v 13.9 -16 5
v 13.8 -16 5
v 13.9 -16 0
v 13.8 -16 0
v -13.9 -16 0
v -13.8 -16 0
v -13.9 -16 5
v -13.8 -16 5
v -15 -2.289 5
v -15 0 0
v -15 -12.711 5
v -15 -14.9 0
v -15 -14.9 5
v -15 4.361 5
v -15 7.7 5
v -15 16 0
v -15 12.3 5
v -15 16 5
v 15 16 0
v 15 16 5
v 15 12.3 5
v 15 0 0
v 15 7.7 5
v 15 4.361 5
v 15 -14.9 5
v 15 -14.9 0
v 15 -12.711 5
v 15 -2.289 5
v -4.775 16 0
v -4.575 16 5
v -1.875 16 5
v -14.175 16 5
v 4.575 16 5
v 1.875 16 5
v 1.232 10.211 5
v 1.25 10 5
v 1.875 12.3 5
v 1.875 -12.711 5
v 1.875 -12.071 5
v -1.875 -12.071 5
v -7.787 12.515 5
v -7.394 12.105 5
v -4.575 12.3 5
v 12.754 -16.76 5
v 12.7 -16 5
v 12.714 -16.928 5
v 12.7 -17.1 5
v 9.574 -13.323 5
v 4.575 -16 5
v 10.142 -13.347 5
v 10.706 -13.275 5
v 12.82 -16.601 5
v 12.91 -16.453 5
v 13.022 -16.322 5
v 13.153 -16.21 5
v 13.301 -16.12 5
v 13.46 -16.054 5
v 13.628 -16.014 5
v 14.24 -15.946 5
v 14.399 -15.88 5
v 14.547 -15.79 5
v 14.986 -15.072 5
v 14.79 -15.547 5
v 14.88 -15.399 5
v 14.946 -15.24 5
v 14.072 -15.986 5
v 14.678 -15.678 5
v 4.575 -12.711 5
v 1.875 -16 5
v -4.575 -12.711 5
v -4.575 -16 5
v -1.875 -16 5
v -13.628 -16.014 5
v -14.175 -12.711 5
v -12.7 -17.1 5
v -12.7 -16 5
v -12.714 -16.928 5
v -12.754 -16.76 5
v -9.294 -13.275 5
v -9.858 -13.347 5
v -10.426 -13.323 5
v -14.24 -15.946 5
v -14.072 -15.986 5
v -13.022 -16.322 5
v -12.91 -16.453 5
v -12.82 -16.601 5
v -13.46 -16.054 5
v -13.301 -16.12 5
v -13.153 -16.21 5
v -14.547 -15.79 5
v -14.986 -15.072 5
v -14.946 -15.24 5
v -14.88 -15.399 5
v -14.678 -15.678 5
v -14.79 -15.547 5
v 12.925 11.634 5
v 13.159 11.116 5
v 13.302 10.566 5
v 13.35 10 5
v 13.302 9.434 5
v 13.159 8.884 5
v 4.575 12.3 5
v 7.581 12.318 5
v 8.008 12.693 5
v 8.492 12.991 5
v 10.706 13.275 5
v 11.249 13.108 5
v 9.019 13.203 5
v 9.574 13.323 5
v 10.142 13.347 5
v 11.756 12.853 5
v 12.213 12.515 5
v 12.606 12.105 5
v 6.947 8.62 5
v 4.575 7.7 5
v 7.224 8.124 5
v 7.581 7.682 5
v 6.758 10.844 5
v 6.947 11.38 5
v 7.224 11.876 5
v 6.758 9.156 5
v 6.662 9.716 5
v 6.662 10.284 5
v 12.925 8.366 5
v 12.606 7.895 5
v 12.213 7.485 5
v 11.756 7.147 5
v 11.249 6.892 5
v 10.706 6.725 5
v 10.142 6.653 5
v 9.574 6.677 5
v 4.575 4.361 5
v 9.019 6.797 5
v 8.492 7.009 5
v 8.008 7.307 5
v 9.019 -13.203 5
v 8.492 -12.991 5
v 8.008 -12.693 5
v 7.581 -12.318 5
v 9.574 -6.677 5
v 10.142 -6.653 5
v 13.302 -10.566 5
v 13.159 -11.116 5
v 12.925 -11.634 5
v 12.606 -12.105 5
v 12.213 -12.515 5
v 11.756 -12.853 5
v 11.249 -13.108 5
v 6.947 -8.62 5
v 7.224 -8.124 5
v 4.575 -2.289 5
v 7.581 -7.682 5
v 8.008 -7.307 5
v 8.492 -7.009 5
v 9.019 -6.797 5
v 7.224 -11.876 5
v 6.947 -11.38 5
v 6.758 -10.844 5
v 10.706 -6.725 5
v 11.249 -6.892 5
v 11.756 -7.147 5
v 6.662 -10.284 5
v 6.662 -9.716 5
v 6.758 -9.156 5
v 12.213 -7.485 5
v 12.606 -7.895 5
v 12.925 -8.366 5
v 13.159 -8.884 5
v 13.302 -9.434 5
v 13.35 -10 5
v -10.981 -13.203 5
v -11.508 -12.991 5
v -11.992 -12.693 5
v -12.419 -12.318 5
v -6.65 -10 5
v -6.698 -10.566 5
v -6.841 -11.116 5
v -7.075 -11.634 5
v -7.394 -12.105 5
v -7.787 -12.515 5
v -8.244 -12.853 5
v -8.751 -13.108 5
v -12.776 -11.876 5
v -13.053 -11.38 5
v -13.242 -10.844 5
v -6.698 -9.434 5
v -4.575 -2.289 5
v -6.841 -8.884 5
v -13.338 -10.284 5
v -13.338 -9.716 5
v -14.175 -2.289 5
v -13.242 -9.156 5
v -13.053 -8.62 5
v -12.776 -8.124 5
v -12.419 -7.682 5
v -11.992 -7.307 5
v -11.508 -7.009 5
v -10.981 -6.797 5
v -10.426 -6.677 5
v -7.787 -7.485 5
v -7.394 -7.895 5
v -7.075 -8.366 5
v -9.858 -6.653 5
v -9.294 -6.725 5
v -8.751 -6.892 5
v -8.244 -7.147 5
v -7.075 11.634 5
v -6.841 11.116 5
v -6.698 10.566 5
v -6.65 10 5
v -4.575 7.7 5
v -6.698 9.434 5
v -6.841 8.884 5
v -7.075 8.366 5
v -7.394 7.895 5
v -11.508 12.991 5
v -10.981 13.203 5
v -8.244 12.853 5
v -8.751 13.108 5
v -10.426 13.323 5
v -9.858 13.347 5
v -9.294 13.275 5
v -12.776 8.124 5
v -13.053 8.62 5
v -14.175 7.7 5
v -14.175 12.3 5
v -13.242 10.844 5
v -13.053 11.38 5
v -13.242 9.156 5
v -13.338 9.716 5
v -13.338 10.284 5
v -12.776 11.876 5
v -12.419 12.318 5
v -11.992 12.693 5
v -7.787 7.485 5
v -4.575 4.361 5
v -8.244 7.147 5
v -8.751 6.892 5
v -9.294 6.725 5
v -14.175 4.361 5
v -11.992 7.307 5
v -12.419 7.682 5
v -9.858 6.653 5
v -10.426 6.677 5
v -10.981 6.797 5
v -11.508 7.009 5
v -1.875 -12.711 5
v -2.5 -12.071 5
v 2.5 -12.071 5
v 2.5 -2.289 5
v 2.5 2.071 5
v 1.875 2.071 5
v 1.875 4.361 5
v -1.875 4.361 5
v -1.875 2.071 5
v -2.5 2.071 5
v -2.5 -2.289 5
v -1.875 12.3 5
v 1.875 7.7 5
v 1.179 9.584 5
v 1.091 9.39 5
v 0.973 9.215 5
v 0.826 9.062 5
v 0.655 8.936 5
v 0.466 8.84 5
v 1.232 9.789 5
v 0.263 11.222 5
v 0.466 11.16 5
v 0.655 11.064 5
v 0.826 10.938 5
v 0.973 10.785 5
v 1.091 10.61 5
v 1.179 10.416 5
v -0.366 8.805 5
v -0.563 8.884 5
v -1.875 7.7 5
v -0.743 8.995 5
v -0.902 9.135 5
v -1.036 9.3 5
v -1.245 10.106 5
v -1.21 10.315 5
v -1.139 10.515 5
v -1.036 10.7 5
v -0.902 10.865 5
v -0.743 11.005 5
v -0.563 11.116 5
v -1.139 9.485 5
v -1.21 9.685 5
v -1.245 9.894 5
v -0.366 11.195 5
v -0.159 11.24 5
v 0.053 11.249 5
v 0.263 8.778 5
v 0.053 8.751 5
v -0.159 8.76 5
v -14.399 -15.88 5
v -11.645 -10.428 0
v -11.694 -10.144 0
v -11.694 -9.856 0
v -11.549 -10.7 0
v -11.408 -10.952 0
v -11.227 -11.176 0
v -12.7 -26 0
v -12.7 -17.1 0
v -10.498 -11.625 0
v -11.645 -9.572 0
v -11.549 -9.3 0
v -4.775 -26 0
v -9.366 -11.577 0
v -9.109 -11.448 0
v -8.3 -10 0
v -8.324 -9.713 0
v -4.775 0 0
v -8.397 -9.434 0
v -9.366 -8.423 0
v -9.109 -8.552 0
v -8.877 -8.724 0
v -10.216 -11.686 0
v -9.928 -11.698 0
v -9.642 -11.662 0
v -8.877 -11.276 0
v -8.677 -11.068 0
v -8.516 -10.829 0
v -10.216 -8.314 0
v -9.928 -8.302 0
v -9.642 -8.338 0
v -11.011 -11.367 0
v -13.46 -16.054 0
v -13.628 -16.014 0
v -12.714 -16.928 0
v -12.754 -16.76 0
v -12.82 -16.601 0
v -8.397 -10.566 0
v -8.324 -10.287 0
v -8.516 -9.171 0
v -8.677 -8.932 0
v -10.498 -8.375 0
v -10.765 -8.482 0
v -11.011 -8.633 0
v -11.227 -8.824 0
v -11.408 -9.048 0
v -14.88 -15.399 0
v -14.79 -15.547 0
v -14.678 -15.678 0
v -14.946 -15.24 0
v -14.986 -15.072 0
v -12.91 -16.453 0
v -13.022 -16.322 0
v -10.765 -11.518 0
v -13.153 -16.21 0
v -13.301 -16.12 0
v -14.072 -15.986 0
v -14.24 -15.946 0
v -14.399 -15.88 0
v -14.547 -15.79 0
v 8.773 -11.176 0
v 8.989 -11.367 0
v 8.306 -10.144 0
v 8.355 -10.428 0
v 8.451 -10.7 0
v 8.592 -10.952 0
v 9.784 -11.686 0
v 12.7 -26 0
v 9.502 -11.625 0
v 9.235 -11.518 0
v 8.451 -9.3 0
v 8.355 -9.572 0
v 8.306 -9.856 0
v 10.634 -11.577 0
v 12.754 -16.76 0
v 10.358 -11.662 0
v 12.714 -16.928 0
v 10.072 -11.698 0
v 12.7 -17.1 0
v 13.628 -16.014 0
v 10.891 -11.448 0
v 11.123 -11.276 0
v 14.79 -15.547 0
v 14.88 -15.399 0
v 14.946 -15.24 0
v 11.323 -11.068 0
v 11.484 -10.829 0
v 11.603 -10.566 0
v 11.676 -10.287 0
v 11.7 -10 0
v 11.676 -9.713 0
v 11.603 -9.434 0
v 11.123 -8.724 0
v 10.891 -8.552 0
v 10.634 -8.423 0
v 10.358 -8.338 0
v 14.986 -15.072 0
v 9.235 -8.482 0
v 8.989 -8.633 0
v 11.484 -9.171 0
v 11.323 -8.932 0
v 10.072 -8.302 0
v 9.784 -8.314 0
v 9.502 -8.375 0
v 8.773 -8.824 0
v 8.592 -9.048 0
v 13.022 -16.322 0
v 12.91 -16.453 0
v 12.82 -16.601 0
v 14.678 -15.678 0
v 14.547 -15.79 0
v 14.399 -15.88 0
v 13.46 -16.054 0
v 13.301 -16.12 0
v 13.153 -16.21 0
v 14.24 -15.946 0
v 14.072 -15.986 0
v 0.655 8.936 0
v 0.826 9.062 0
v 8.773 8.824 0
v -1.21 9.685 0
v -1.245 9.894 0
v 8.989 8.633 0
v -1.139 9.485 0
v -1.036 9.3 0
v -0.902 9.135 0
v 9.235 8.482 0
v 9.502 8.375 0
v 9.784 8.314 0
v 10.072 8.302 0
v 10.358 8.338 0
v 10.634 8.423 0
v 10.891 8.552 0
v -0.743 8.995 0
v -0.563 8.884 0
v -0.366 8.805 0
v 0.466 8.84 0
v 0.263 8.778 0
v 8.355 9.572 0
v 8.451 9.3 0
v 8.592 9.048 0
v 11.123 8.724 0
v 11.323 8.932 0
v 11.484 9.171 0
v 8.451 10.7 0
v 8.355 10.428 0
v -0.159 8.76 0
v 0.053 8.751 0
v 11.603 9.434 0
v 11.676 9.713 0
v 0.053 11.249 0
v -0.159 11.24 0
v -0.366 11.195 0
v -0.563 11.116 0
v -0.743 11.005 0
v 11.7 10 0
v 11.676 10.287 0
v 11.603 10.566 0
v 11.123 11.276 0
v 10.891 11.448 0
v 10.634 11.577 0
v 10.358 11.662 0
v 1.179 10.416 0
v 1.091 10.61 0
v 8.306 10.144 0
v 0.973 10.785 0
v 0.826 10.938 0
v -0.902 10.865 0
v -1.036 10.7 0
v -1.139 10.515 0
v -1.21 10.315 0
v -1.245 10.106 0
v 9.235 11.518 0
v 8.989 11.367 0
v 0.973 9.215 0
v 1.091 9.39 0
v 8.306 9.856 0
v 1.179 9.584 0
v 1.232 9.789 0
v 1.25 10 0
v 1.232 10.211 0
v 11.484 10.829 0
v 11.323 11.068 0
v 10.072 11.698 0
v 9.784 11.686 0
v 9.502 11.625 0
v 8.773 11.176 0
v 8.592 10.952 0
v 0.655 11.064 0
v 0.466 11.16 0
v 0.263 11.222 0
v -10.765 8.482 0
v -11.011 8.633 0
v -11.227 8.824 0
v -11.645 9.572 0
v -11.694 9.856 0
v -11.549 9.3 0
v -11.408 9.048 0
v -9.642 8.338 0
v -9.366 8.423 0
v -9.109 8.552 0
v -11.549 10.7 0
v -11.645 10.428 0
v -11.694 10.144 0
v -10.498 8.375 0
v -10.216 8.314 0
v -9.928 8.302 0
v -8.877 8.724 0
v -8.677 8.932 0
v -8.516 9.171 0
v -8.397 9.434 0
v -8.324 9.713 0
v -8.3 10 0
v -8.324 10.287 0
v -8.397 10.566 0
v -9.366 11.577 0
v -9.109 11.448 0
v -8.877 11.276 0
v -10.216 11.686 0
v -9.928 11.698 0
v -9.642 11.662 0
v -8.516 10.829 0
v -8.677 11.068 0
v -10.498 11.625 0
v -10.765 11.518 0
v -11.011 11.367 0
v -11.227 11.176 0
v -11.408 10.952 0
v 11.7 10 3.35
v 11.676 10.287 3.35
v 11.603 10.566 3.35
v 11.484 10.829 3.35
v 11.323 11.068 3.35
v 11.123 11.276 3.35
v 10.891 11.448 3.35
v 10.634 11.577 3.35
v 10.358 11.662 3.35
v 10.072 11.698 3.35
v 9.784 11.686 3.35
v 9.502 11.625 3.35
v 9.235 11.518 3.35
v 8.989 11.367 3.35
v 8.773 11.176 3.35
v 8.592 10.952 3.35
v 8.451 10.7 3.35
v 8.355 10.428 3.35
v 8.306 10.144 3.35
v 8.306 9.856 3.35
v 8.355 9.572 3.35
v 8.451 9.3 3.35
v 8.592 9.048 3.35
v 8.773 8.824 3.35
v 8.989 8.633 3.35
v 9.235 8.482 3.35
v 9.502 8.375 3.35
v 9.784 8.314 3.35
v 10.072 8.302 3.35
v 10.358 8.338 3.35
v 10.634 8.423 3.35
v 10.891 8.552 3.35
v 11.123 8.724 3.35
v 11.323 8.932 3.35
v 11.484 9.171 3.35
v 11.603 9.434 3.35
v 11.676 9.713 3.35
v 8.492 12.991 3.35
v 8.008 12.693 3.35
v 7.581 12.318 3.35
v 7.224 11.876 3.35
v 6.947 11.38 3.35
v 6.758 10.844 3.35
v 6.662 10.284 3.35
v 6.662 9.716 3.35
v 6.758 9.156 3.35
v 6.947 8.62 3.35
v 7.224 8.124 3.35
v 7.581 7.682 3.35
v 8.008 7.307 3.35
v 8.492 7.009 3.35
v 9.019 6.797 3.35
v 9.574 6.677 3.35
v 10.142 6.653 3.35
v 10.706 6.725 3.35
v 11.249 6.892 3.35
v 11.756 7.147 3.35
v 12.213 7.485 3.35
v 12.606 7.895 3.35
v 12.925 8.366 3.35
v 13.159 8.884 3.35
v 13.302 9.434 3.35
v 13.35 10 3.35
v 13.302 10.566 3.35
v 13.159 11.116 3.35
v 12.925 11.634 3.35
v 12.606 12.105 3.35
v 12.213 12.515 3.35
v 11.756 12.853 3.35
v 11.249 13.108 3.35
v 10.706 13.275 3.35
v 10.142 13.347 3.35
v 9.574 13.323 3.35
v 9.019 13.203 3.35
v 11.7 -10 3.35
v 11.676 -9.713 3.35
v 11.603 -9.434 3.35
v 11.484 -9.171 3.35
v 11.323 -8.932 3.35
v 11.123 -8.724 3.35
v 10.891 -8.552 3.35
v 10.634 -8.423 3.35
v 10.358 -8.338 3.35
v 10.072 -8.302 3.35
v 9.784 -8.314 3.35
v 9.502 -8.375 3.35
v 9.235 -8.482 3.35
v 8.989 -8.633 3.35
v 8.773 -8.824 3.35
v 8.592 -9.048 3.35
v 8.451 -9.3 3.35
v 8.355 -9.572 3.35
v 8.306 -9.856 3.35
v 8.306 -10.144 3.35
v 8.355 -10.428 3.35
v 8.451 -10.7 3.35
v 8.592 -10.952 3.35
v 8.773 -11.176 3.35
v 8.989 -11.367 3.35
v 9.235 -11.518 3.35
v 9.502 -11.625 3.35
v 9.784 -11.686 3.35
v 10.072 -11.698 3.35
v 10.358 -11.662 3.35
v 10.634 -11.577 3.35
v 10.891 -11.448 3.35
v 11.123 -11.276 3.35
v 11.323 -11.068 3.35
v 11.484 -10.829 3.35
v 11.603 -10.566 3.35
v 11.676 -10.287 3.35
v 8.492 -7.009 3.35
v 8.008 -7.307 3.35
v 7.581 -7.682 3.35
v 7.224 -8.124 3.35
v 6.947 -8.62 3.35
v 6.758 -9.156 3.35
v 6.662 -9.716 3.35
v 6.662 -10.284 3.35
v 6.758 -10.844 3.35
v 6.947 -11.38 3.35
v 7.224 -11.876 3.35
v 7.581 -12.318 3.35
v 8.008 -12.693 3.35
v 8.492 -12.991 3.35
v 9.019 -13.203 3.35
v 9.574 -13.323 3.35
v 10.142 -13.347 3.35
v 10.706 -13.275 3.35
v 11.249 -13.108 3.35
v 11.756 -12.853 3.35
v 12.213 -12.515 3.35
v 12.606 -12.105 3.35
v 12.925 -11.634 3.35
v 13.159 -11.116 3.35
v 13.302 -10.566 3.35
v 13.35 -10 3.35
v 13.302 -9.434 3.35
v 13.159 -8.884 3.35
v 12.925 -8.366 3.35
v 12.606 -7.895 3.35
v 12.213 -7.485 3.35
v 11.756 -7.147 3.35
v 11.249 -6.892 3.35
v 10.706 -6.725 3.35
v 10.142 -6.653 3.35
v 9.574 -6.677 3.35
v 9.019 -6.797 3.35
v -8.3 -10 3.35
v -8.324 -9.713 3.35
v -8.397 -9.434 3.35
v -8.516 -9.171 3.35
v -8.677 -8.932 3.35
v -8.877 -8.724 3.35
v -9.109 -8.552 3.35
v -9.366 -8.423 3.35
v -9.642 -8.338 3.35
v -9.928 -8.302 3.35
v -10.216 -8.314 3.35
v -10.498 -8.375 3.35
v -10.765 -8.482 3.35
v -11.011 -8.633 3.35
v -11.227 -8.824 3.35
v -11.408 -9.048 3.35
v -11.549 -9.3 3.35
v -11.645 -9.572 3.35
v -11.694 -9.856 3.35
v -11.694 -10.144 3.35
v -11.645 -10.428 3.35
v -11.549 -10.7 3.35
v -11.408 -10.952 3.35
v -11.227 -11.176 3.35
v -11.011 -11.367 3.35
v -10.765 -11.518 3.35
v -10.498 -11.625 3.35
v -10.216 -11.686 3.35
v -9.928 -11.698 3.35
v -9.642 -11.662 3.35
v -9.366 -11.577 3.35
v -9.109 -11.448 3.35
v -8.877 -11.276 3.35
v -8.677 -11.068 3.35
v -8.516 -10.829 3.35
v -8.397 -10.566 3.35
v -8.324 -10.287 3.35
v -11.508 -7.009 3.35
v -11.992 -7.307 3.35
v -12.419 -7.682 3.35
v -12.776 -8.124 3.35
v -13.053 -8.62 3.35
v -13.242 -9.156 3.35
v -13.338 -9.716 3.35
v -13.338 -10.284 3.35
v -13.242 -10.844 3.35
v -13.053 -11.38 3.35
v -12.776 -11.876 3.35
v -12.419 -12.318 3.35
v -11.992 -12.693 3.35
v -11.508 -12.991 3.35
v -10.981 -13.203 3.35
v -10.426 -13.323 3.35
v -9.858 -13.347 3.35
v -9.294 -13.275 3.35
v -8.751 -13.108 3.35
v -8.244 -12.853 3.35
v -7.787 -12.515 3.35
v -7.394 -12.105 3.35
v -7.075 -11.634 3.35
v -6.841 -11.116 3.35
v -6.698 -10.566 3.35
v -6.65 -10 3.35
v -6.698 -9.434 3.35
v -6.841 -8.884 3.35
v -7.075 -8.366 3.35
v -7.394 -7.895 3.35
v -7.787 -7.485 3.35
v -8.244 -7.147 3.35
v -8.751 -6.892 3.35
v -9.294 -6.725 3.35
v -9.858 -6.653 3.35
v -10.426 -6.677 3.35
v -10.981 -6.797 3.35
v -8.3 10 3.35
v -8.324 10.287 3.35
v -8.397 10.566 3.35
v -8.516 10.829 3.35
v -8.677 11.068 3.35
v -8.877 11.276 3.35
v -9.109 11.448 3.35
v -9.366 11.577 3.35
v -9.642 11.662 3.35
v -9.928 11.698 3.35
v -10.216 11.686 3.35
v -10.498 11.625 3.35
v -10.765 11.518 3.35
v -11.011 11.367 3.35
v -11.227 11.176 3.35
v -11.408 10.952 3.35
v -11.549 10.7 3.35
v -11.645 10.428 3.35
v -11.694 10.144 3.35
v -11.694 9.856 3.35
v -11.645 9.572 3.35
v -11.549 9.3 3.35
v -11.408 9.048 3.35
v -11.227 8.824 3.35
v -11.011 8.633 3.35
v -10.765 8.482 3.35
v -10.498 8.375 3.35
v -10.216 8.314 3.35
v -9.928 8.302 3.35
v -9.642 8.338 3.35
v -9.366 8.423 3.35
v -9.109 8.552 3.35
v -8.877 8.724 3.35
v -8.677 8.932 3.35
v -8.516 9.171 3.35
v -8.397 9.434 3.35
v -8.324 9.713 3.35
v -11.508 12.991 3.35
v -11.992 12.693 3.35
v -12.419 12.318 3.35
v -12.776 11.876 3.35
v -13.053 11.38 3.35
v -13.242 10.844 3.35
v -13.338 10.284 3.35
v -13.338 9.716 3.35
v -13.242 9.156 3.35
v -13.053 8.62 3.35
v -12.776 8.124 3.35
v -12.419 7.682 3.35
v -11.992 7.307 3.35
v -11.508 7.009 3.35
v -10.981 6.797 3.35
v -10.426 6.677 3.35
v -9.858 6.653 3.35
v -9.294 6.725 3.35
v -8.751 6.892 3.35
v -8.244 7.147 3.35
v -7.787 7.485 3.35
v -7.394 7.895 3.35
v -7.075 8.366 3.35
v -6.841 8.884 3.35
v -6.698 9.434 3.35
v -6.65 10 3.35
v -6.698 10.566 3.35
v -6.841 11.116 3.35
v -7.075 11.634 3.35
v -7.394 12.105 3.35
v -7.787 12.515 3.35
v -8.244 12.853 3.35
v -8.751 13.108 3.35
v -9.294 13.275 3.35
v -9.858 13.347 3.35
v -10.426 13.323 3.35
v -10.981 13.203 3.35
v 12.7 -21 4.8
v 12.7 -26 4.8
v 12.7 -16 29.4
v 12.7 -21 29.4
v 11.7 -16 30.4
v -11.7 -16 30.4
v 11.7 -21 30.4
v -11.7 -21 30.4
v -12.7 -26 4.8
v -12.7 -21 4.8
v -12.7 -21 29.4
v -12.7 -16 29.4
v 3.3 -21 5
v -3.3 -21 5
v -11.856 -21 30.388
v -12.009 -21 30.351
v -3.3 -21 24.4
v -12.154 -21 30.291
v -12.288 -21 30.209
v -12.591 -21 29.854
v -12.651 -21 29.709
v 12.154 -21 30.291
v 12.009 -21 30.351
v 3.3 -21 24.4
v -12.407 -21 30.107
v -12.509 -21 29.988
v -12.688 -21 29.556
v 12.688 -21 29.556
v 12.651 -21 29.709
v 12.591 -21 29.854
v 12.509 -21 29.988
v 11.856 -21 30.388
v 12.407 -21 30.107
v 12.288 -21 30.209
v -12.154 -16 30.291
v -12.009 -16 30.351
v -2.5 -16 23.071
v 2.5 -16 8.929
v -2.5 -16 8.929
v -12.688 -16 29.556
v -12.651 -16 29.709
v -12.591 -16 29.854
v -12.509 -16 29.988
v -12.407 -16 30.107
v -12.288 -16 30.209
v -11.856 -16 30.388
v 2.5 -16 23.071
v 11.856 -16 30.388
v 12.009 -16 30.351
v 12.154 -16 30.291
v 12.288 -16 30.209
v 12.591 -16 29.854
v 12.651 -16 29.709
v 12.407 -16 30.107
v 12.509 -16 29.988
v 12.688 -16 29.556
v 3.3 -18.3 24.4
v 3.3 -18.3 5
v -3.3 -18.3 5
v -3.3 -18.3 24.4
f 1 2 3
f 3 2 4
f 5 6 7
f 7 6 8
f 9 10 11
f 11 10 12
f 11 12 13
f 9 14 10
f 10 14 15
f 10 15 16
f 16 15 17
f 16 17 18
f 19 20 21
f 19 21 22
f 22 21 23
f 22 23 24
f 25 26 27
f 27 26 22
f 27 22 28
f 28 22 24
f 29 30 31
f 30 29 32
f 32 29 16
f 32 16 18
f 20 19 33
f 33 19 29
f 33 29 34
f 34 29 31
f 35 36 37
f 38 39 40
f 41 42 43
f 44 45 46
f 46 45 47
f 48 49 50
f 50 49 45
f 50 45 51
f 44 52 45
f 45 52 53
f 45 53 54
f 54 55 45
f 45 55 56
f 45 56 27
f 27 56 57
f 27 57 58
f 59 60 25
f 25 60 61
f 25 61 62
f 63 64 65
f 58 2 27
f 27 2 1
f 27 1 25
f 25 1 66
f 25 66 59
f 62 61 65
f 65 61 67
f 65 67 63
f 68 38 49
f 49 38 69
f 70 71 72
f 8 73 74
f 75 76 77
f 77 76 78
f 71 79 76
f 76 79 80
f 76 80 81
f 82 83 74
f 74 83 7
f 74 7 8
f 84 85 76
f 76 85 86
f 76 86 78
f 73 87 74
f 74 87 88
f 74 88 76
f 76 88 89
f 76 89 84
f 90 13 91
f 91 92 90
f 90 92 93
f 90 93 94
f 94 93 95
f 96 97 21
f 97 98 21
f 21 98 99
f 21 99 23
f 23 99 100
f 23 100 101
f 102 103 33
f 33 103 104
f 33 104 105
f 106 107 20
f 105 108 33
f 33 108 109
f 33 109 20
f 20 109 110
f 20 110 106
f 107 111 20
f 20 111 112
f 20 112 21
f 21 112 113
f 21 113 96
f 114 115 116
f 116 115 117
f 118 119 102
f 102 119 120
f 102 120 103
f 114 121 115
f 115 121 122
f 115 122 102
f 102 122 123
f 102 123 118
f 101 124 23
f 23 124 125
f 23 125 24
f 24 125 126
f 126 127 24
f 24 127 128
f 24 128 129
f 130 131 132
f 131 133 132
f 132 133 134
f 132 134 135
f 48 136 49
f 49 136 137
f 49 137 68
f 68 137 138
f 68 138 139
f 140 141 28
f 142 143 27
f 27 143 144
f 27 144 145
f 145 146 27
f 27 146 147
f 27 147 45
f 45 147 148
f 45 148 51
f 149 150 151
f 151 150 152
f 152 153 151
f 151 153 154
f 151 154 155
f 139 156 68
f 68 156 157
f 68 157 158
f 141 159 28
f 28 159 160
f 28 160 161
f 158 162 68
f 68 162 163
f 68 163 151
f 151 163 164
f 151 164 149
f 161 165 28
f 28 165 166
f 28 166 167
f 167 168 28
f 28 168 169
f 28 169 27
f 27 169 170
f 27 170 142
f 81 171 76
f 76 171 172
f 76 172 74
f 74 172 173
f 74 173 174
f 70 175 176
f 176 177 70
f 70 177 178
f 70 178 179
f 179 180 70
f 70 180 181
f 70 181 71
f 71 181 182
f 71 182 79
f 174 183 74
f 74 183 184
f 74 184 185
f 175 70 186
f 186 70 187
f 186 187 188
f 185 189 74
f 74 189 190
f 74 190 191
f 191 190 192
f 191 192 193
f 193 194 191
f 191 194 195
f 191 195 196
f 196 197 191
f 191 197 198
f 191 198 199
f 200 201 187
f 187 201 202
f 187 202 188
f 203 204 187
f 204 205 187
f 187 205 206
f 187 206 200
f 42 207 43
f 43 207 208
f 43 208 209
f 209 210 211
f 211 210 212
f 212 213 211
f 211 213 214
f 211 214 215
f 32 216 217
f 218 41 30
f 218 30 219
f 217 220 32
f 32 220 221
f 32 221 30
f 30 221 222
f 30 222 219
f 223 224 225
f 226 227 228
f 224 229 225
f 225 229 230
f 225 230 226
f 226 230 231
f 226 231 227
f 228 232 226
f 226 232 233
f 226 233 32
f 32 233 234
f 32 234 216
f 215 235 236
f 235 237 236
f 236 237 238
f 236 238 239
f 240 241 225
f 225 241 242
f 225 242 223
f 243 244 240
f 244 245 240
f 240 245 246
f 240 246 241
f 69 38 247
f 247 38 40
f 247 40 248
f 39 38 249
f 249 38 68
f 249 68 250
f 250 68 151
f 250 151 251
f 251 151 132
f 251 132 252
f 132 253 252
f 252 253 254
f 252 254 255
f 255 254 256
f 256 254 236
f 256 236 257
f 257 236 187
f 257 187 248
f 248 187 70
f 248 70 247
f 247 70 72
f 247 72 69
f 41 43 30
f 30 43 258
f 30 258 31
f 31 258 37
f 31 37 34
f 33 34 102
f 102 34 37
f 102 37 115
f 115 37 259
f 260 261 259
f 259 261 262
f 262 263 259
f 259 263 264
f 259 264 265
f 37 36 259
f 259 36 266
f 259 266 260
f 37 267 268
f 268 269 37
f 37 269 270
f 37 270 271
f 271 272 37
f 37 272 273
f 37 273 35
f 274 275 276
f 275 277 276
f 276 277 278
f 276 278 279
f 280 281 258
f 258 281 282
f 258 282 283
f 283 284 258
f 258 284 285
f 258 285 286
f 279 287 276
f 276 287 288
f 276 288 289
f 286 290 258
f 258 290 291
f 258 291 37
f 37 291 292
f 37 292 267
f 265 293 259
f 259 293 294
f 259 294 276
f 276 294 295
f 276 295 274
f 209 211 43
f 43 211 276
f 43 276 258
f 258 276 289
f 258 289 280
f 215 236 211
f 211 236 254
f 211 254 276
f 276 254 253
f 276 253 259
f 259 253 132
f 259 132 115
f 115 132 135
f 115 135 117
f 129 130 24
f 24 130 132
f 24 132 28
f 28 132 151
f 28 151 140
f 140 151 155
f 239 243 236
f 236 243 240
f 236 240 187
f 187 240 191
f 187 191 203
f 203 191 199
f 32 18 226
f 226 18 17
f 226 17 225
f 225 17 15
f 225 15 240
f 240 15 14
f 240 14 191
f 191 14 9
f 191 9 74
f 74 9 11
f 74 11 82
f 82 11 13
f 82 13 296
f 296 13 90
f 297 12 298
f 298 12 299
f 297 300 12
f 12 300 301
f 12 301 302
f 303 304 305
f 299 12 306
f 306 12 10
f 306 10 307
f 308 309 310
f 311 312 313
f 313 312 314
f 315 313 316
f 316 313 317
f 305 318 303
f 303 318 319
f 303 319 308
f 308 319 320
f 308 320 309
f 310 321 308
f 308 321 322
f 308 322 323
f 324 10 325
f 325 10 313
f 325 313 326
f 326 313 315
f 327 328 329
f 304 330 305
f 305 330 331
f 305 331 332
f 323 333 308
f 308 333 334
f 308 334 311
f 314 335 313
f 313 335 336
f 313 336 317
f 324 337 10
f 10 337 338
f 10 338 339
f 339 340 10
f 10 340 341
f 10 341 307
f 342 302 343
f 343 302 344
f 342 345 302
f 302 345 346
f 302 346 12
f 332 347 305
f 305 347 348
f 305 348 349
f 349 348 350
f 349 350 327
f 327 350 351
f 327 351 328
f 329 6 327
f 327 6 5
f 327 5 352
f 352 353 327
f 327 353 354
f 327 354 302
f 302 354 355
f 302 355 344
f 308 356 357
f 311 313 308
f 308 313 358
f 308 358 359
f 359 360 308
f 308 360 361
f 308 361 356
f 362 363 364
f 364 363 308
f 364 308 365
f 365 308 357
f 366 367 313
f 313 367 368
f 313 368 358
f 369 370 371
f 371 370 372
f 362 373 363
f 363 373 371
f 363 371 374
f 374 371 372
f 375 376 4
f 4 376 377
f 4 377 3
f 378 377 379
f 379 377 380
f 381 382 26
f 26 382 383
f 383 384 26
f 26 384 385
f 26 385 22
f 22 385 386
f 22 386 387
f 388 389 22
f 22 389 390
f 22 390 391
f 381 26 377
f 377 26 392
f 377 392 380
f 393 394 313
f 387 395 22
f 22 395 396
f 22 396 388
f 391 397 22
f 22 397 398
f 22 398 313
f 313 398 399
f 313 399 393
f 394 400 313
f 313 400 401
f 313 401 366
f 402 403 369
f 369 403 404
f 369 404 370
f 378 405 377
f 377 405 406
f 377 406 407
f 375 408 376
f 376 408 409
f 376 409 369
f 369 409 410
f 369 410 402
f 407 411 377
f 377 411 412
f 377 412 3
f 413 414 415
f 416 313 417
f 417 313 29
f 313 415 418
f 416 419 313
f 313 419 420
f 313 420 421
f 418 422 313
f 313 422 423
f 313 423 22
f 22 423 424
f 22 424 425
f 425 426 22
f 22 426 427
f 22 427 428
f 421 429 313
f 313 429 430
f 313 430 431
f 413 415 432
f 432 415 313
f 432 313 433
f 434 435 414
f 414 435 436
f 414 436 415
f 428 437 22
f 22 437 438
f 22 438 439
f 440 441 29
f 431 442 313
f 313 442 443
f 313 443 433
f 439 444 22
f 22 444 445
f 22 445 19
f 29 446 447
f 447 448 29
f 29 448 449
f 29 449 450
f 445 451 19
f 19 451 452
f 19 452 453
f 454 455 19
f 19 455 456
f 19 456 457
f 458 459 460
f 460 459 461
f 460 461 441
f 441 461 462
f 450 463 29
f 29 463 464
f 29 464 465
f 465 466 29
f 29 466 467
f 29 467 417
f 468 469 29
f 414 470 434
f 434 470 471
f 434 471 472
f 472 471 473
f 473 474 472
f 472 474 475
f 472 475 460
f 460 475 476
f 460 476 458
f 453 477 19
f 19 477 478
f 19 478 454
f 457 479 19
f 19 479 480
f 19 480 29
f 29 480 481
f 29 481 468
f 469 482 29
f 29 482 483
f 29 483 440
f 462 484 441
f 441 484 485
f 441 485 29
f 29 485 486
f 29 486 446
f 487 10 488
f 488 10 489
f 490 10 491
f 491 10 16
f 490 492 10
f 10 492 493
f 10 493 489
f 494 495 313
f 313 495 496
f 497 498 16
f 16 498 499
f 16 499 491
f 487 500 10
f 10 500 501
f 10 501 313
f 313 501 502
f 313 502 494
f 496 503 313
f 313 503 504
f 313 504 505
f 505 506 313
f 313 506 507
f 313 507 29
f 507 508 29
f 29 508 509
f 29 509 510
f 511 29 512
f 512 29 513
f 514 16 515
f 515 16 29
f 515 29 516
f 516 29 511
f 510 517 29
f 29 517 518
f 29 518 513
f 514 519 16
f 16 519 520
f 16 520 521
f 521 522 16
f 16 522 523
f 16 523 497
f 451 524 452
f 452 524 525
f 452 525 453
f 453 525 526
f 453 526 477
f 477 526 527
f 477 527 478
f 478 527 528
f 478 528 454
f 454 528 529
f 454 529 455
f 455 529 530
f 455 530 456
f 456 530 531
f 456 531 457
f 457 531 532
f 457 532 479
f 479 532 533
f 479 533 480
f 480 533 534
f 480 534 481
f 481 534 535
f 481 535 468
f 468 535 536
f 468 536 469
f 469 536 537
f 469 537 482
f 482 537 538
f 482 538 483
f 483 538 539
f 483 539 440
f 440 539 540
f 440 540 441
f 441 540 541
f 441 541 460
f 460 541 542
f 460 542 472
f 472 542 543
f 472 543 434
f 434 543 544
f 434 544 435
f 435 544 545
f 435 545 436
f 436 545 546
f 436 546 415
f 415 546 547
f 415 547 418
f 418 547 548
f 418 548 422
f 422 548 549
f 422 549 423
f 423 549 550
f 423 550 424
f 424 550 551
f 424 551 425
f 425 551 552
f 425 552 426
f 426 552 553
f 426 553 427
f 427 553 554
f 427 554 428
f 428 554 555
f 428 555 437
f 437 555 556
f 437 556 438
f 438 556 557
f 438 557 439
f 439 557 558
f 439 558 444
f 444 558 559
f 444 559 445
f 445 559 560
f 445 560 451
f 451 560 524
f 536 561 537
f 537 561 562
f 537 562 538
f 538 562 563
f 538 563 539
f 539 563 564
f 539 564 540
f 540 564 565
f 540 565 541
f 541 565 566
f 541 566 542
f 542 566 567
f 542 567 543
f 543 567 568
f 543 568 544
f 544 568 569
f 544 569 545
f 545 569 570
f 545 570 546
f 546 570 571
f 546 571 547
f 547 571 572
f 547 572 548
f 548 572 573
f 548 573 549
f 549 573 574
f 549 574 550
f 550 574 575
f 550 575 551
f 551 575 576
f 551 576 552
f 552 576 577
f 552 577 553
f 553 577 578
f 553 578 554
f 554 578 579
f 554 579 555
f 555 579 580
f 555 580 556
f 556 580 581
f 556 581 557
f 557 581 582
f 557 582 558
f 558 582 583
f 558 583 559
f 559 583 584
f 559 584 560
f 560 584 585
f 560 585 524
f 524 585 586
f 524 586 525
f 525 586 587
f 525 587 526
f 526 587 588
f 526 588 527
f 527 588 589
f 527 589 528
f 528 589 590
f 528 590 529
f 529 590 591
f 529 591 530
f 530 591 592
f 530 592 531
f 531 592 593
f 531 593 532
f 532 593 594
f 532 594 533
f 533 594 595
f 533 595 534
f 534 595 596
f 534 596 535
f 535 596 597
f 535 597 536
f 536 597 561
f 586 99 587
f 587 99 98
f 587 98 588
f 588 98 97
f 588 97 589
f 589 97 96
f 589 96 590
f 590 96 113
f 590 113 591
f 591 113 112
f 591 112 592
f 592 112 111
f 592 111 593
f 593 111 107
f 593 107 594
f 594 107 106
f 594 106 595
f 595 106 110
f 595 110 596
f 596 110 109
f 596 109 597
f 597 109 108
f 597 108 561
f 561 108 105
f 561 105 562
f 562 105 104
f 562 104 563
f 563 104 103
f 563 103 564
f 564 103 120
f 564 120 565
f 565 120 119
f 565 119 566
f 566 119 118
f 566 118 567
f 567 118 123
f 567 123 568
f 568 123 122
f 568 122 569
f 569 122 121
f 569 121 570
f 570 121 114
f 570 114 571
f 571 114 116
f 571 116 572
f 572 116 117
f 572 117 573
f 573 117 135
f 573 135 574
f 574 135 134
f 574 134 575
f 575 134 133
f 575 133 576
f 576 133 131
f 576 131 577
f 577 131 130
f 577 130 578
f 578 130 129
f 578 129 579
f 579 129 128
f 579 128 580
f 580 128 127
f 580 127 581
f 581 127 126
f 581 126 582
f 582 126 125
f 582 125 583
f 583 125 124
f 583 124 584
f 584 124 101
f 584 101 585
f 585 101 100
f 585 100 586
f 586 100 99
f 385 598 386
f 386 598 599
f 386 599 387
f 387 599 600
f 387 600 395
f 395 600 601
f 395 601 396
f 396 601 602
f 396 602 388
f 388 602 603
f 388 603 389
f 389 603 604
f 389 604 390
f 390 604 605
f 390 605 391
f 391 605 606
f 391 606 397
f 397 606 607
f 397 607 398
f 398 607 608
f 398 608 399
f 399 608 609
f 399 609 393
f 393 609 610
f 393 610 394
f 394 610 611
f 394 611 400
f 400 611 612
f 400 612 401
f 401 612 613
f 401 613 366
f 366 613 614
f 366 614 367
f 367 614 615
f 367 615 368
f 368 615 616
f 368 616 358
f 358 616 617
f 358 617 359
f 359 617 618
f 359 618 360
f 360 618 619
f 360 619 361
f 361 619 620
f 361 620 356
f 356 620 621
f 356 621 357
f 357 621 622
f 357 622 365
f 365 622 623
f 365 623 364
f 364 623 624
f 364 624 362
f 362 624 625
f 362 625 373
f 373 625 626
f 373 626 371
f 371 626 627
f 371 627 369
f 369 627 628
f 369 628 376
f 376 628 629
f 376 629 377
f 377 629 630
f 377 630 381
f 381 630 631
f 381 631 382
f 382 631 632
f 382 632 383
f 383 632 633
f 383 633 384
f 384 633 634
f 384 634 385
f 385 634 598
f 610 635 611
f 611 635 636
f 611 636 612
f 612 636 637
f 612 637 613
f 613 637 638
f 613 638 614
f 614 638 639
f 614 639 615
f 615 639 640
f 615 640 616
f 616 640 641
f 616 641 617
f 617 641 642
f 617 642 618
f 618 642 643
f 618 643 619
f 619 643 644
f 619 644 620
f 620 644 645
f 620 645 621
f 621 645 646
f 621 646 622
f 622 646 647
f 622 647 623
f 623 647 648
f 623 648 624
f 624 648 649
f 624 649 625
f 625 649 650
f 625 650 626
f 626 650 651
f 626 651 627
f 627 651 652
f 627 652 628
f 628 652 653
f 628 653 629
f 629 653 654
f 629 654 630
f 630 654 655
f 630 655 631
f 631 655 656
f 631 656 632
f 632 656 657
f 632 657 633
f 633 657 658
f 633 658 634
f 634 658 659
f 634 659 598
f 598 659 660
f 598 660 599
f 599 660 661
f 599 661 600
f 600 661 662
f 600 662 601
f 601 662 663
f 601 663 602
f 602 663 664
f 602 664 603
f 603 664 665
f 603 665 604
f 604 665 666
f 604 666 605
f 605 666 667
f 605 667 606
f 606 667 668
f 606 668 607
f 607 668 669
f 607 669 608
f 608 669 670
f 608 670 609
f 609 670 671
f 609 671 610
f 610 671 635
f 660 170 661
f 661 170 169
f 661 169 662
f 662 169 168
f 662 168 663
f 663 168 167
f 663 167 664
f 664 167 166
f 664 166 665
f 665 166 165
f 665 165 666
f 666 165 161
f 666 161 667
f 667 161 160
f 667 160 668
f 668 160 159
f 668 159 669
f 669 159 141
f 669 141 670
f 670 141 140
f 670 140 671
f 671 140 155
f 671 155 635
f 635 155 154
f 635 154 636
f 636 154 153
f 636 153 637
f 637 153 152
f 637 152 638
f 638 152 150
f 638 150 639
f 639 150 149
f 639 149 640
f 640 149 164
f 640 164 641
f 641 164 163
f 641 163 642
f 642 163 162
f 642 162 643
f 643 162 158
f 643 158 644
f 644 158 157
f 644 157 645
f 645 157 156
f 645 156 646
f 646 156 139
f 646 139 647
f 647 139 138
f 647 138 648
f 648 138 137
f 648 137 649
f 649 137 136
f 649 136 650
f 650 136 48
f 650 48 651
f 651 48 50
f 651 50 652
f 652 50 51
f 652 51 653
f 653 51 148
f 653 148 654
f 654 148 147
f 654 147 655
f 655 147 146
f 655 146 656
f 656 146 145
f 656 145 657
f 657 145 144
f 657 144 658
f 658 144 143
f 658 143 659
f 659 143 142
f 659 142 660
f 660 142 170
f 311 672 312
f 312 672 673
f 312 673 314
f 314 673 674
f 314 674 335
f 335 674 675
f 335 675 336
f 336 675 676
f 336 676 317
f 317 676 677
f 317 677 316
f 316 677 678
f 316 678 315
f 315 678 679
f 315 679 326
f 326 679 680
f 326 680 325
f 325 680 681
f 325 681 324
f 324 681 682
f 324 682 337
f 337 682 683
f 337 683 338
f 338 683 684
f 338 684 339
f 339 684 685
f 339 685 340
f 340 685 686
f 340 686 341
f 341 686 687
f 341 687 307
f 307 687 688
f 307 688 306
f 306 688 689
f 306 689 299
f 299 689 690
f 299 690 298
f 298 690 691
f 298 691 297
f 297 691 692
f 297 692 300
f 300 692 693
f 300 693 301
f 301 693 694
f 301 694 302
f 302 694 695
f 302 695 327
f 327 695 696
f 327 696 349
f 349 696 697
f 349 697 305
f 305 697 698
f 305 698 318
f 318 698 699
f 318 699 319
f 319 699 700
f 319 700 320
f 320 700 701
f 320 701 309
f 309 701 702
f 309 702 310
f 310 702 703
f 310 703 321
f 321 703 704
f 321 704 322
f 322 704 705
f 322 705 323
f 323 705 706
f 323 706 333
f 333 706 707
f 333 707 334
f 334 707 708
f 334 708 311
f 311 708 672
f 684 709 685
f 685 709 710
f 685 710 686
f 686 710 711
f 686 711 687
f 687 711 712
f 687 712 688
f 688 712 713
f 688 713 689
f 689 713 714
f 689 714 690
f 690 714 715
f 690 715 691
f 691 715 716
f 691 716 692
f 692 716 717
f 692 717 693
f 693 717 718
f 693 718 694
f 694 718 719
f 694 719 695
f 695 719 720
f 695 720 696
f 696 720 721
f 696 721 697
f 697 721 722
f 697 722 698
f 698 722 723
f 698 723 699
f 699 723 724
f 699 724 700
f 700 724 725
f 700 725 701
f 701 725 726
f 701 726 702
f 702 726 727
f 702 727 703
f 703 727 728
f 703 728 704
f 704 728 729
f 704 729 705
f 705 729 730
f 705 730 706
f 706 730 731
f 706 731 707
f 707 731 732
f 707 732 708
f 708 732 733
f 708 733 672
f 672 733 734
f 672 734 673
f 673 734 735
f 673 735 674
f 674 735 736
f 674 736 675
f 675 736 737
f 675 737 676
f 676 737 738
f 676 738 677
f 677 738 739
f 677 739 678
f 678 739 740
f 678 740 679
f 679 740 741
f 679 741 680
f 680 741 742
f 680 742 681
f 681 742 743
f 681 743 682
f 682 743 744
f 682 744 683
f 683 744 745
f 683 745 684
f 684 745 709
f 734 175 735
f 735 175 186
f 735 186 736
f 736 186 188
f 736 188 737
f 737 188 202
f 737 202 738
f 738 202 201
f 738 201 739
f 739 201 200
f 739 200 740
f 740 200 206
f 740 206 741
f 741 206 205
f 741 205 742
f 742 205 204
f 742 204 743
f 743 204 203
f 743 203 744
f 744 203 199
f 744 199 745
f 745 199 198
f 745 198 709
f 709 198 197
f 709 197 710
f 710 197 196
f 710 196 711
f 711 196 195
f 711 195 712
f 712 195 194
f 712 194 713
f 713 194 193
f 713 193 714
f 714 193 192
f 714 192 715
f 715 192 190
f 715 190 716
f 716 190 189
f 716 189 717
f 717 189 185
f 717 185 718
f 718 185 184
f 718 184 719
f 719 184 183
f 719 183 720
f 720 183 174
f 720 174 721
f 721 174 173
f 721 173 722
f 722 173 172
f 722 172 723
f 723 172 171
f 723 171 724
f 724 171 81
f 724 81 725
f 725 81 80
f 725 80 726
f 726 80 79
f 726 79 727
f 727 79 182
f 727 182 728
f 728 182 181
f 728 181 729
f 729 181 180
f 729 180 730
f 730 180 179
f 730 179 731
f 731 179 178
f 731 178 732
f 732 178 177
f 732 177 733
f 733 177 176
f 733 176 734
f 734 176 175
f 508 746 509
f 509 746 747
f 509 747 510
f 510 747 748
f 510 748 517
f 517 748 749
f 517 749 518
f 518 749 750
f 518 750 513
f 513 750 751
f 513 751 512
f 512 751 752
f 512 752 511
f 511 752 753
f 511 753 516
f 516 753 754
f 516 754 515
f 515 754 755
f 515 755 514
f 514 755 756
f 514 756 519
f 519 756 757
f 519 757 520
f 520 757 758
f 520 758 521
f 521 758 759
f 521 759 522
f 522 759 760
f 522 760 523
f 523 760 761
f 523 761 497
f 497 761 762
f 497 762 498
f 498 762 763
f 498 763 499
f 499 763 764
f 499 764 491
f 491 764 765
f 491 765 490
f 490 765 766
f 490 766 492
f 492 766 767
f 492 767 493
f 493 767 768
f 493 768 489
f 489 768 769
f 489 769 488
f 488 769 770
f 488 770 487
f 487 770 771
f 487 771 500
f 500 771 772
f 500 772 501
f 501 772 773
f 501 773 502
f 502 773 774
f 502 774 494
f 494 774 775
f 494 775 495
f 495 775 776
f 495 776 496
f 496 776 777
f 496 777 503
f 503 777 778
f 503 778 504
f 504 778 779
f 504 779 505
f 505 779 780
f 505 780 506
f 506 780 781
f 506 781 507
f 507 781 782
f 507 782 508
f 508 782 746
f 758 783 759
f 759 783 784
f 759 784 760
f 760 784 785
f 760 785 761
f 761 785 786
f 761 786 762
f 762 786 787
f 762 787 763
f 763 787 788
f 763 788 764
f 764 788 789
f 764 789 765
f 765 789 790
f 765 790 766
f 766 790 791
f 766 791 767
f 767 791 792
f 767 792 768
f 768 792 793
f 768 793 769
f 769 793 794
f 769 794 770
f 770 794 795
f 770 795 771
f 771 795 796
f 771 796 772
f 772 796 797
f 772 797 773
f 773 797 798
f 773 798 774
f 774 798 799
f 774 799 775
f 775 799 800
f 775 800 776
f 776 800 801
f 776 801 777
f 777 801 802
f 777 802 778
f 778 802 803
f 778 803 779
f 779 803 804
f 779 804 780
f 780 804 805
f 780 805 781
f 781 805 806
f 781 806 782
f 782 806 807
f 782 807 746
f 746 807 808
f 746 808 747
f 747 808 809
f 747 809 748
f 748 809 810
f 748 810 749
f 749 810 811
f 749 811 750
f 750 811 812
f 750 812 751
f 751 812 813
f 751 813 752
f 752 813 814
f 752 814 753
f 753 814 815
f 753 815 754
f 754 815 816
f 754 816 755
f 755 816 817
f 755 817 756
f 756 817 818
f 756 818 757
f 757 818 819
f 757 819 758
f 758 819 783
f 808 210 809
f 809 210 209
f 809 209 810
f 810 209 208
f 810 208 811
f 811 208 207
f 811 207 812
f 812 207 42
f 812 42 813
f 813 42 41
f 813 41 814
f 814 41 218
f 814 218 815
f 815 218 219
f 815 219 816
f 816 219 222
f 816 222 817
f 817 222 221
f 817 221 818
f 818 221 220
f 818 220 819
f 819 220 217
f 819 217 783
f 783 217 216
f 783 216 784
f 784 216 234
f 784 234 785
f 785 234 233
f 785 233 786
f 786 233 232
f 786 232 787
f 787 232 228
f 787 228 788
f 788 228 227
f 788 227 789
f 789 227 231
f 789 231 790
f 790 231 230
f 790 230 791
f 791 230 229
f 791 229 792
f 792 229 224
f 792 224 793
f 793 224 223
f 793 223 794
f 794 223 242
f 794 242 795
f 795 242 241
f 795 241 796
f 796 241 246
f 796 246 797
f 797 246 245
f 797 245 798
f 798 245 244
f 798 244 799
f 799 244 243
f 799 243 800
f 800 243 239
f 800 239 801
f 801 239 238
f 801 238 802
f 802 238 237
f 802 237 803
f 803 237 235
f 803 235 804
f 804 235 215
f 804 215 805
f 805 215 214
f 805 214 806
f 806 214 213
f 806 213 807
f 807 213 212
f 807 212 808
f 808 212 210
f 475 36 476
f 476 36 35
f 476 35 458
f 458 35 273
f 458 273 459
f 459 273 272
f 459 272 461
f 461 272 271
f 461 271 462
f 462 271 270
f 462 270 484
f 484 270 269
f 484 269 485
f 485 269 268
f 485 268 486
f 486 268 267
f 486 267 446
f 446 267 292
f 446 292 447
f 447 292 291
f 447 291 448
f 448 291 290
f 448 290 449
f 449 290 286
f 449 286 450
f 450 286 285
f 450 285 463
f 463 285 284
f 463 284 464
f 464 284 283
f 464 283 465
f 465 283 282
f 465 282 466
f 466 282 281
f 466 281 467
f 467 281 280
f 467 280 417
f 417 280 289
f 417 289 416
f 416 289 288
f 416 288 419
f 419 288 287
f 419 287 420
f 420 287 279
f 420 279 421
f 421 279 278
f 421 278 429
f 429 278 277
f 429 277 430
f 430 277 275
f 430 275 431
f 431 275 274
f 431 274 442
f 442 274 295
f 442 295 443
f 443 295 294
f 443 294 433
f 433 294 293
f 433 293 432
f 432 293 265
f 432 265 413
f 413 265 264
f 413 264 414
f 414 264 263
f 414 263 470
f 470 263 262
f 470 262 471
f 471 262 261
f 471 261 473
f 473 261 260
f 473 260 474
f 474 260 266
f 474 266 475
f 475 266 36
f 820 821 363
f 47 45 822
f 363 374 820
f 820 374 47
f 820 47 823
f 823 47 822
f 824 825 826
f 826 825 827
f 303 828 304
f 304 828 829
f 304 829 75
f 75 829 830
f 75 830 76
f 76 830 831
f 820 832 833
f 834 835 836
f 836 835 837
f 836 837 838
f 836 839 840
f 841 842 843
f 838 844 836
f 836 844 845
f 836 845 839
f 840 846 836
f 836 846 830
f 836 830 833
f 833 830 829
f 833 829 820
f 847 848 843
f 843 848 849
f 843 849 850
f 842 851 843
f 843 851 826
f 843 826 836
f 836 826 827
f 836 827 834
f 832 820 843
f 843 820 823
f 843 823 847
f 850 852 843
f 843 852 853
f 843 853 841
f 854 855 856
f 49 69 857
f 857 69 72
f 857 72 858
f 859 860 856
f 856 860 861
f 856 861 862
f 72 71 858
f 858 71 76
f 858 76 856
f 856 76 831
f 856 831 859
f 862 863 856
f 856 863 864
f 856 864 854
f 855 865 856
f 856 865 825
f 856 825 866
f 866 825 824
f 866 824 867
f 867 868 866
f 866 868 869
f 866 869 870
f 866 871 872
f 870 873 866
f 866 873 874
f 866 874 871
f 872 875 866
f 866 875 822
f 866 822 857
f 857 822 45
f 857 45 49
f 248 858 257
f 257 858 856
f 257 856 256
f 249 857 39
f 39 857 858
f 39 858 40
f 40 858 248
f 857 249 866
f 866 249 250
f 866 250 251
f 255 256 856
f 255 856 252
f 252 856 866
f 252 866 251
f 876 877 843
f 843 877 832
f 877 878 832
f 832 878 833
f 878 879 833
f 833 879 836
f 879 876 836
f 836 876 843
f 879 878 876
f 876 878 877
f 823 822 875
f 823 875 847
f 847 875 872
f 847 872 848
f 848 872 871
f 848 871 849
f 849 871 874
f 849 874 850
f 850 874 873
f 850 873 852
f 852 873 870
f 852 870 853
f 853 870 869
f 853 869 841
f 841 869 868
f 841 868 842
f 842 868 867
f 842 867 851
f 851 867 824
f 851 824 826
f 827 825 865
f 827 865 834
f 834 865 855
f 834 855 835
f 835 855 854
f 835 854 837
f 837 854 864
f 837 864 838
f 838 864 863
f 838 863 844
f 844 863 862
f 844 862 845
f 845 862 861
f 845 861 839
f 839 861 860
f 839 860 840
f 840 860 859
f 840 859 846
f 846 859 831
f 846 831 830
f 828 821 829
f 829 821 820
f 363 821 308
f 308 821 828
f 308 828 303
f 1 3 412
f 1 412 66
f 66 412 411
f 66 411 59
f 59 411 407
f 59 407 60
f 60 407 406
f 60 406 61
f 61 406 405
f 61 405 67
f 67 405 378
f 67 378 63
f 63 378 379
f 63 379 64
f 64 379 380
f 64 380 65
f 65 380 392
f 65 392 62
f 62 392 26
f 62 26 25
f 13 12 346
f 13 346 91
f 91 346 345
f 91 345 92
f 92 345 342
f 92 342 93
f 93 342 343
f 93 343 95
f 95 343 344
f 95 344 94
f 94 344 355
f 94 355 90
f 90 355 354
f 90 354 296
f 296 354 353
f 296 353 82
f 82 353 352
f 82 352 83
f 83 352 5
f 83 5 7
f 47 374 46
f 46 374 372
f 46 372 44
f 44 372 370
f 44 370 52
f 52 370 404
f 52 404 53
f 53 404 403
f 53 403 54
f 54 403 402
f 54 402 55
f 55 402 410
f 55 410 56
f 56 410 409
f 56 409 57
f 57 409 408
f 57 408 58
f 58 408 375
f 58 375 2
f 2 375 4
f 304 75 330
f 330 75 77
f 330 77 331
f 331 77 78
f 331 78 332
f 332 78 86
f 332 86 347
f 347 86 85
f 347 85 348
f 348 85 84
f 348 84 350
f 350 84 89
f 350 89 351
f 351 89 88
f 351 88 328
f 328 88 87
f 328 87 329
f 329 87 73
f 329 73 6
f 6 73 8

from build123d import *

# Parameters (mm, degrees)
SKETCH1_W                       = 30
SKETCH1_H                       = 32
BOSS_EXTRUDE1_DEPTH             = 5
CBORE_FOR_M3_SBHCS2_D           = 3.4
CBORE_FOR_M3_SBHCS2_CBORE_D     = 6.7
CBORE_FOR_M3_SBHCS2_CBORE_DEPTH = 1.65
TAP_DRILL_FOR_M3X0_5_TAP1_D     = 2.5
SKETCH5_W                       = 25.4
SKETCH5_H                       = 30.4
BOSS_EXTRUDE2_DEPTH             = 5
BOSS_EXTRUDE3_REACH             = 38.377
SKETCH8_W                       = 5
SKETCH8_H                       = 10
BOSS_EXTRUDE3_DIRECTION_2_REACH = 38.377
SKETCH10_W                      = 6.6
SKETCH10_H                      = 19.4
CUT_EXTRUDE1_DEPTH              = 2.7
FILLET1_R                       = 1
SKETCH12_W                      = 25.4
SKETCH12_H                      = 4.8
BOSS_EXTRUDE5_DEPTH             = 5
FILLET2_START                   = -1
FILLET2_DEPTH                   = 30.4
FILLET2_2_DEPTH                 = 5


with BuildPart() as part:
    # Sketch1 → Boss-Extrude1 (new body)
    with BuildSketch(Plane.XY):
        Rectangle(SKETCH1_W, SKETCH1_H)
    extrude(amount=BOSS_EXTRUDE1_DEPTH)

    # CBORE for M3 SBHCS2 (through all)
    with Locations(Plane.XY.offset(5)):
        with Locations((-10, 10), (-10, -10), (10, -10), (10, 10)):
            CounterBoreHole(CBORE_FOR_M3_SBHCS2_D / 2, CBORE_FOR_M3_SBHCS2_CBORE_D / 2, CBORE_FOR_M3_SBHCS2_CBORE_DEPTH)

    # Tap Drill for M3x0.5 Tap1 (through all)
    with Locations(Plane.XY.offset(5)):
        with Locations((0, 10)):
            Hole(TAP_DRILL_FOR_M3X0_5_TAP1_D / 2)

    # Sketch5 → Boss-Extrude2 (add)
    with BuildSketch(Plane.XZ.offset(16)):
        with Locations((0, 15.2)):
            Rectangle(SKETCH5_W, SKETCH5_H)
    extrude(amount=BOSS_EXTRUDE2_DEPTH)

    # Boss-Extrude3: up to this plane
    boss_extrude3_end = Plane(origin=(0, -16, 0), z_dir=(0, -1, 0))
    # Sketch8 → Boss-Extrude3 (add, up to the surface)
    with BuildSketch(Plane(origin=(0, -10.5, 10.5), x_dir=(1, 0, 0), z_dir=(0, -0.7071067811865475, 0.7071067811865477)), mode=Mode.PRIVATE) as boss_extrude3_sk1:
        Rectangle(SKETCH8_W, SKETCH8_H)
    boss_extrude3_tool1 = split(extrude(boss_extrude3_sk1.sketch, amount=BOSS_EXTRUDE3_REACH, mode=Mode.PRIVATE), bisect_by=boss_extrude3_end, keep=Keep.BOTH, mode=Mode.PRIVATE)
    add(boss_extrude3_tool1.solids().sort_by_distance((0, -10.5, 10.5))[0])

    # Boss-Extrude3 direction 2: up to this plane
    boss_extrude3_direction_2_end = Plane(origin=(0, 0, 5), z_dir=(0, 0, 1))
    # Sketch8 → Boss-Extrude3 direction 2 (add, up to the surface)
    with BuildSketch(Plane(origin=(0, -10.5, 10.5), x_dir=(1, 0, 0), z_dir=(0, -0.7071067811865475, 0.7071067811865477)), mode=Mode.PRIVATE) as boss_extrude3_direction_2_sk1:
        Rectangle(SKETCH8_W, SKETCH8_H)
    boss_extrude3_direction_2_tool1 = split(extrude(boss_extrude3_direction_2_sk1.sketch, amount=-BOSS_EXTRUDE3_DIRECTION_2_REACH, mode=Mode.PRIVATE), bisect_by=boss_extrude3_direction_2_end, keep=Keep.BOTH, mode=Mode.PRIVATE)
    add(boss_extrude3_direction_2_tool1.solids().sort_by_distance((0, -10.5, 10.5))[0])

    # Sketch10 → Cut-Extrude1 (cut)
    with BuildSketch(Plane.XZ.offset(21)):
        with Locations((0, 14.7)):
            Rectangle(SKETCH10_W, SKETCH10_H)
    extrude(amount=-CUT_EXTRUDE1_DEPTH, mode=Mode.SUBTRACT)

    # Fillet1
    fillet1_edges = [part.edges().sort_by_distance(p)[0] for p in [
        (12.7, -18.5, 30.4),
        (-12.7, -18.5, 30.4),
    ]]
    fillet(fillet1_edges, radius=FILLET1_R)

    # Sketch12 → Boss-Extrude5 (add)
    with BuildSketch(Plane.XZ.offset(21)):
        with Locations((0, 2.4)):
            Rectangle(SKETCH12_W, SKETCH12_H)
    extrude(amount=BOSS_EXTRUDE5_DEPTH)

    # Fillet2: read off the stored shape, not the designer's step
    # Fillet2 outline → Fillet2 (cut)
    with BuildSketch(Plane.XY.offset(FILLET2_START)):
        with BuildLine():
            Line((15, -16), (15, -14.9))
            ThreePointArc((15, -14.9), (14.677817459, -15.677817459), (13.9, -16))
            Line((13.9, -16), (15, -16))
        make_face()
        with BuildLine():
            Line((-15, -16), (-13.9, -16))
            ThreePointArc((-13.9, -16), (-14.677817459, -15.677817459), (-15, -14.9))
            Line((-15, -14.9), (-15, -16))
        make_face()
    extrude(amount=FILLET2_DEPTH, mode=Mode.SUBTRACT)

    # Fillet2 2 outline → Fillet2 2 (add)
    with BuildSketch(Plane.XY):
        with BuildLine():
            ThreePointArc((12.7, -17.1), (13.022182541, -16.322182541), (13.8, -16))
            Line((13.8, -16), (12.7, -16))
            Line((12.7, -16), (12.7, -17.1))
        make_face()
        with BuildLine():
            Line((-12.7, -16), (-13.8, -16))
            ThreePointArc((-13.8, -16), (-13.022182541, -16.322182541), (-12.7, -17.1))
            Line((-12.7, -17.1), (-12.7, -16))
        make_face()
    extrude(amount=FILLET2_2_DEPTH)


solid = part.part
